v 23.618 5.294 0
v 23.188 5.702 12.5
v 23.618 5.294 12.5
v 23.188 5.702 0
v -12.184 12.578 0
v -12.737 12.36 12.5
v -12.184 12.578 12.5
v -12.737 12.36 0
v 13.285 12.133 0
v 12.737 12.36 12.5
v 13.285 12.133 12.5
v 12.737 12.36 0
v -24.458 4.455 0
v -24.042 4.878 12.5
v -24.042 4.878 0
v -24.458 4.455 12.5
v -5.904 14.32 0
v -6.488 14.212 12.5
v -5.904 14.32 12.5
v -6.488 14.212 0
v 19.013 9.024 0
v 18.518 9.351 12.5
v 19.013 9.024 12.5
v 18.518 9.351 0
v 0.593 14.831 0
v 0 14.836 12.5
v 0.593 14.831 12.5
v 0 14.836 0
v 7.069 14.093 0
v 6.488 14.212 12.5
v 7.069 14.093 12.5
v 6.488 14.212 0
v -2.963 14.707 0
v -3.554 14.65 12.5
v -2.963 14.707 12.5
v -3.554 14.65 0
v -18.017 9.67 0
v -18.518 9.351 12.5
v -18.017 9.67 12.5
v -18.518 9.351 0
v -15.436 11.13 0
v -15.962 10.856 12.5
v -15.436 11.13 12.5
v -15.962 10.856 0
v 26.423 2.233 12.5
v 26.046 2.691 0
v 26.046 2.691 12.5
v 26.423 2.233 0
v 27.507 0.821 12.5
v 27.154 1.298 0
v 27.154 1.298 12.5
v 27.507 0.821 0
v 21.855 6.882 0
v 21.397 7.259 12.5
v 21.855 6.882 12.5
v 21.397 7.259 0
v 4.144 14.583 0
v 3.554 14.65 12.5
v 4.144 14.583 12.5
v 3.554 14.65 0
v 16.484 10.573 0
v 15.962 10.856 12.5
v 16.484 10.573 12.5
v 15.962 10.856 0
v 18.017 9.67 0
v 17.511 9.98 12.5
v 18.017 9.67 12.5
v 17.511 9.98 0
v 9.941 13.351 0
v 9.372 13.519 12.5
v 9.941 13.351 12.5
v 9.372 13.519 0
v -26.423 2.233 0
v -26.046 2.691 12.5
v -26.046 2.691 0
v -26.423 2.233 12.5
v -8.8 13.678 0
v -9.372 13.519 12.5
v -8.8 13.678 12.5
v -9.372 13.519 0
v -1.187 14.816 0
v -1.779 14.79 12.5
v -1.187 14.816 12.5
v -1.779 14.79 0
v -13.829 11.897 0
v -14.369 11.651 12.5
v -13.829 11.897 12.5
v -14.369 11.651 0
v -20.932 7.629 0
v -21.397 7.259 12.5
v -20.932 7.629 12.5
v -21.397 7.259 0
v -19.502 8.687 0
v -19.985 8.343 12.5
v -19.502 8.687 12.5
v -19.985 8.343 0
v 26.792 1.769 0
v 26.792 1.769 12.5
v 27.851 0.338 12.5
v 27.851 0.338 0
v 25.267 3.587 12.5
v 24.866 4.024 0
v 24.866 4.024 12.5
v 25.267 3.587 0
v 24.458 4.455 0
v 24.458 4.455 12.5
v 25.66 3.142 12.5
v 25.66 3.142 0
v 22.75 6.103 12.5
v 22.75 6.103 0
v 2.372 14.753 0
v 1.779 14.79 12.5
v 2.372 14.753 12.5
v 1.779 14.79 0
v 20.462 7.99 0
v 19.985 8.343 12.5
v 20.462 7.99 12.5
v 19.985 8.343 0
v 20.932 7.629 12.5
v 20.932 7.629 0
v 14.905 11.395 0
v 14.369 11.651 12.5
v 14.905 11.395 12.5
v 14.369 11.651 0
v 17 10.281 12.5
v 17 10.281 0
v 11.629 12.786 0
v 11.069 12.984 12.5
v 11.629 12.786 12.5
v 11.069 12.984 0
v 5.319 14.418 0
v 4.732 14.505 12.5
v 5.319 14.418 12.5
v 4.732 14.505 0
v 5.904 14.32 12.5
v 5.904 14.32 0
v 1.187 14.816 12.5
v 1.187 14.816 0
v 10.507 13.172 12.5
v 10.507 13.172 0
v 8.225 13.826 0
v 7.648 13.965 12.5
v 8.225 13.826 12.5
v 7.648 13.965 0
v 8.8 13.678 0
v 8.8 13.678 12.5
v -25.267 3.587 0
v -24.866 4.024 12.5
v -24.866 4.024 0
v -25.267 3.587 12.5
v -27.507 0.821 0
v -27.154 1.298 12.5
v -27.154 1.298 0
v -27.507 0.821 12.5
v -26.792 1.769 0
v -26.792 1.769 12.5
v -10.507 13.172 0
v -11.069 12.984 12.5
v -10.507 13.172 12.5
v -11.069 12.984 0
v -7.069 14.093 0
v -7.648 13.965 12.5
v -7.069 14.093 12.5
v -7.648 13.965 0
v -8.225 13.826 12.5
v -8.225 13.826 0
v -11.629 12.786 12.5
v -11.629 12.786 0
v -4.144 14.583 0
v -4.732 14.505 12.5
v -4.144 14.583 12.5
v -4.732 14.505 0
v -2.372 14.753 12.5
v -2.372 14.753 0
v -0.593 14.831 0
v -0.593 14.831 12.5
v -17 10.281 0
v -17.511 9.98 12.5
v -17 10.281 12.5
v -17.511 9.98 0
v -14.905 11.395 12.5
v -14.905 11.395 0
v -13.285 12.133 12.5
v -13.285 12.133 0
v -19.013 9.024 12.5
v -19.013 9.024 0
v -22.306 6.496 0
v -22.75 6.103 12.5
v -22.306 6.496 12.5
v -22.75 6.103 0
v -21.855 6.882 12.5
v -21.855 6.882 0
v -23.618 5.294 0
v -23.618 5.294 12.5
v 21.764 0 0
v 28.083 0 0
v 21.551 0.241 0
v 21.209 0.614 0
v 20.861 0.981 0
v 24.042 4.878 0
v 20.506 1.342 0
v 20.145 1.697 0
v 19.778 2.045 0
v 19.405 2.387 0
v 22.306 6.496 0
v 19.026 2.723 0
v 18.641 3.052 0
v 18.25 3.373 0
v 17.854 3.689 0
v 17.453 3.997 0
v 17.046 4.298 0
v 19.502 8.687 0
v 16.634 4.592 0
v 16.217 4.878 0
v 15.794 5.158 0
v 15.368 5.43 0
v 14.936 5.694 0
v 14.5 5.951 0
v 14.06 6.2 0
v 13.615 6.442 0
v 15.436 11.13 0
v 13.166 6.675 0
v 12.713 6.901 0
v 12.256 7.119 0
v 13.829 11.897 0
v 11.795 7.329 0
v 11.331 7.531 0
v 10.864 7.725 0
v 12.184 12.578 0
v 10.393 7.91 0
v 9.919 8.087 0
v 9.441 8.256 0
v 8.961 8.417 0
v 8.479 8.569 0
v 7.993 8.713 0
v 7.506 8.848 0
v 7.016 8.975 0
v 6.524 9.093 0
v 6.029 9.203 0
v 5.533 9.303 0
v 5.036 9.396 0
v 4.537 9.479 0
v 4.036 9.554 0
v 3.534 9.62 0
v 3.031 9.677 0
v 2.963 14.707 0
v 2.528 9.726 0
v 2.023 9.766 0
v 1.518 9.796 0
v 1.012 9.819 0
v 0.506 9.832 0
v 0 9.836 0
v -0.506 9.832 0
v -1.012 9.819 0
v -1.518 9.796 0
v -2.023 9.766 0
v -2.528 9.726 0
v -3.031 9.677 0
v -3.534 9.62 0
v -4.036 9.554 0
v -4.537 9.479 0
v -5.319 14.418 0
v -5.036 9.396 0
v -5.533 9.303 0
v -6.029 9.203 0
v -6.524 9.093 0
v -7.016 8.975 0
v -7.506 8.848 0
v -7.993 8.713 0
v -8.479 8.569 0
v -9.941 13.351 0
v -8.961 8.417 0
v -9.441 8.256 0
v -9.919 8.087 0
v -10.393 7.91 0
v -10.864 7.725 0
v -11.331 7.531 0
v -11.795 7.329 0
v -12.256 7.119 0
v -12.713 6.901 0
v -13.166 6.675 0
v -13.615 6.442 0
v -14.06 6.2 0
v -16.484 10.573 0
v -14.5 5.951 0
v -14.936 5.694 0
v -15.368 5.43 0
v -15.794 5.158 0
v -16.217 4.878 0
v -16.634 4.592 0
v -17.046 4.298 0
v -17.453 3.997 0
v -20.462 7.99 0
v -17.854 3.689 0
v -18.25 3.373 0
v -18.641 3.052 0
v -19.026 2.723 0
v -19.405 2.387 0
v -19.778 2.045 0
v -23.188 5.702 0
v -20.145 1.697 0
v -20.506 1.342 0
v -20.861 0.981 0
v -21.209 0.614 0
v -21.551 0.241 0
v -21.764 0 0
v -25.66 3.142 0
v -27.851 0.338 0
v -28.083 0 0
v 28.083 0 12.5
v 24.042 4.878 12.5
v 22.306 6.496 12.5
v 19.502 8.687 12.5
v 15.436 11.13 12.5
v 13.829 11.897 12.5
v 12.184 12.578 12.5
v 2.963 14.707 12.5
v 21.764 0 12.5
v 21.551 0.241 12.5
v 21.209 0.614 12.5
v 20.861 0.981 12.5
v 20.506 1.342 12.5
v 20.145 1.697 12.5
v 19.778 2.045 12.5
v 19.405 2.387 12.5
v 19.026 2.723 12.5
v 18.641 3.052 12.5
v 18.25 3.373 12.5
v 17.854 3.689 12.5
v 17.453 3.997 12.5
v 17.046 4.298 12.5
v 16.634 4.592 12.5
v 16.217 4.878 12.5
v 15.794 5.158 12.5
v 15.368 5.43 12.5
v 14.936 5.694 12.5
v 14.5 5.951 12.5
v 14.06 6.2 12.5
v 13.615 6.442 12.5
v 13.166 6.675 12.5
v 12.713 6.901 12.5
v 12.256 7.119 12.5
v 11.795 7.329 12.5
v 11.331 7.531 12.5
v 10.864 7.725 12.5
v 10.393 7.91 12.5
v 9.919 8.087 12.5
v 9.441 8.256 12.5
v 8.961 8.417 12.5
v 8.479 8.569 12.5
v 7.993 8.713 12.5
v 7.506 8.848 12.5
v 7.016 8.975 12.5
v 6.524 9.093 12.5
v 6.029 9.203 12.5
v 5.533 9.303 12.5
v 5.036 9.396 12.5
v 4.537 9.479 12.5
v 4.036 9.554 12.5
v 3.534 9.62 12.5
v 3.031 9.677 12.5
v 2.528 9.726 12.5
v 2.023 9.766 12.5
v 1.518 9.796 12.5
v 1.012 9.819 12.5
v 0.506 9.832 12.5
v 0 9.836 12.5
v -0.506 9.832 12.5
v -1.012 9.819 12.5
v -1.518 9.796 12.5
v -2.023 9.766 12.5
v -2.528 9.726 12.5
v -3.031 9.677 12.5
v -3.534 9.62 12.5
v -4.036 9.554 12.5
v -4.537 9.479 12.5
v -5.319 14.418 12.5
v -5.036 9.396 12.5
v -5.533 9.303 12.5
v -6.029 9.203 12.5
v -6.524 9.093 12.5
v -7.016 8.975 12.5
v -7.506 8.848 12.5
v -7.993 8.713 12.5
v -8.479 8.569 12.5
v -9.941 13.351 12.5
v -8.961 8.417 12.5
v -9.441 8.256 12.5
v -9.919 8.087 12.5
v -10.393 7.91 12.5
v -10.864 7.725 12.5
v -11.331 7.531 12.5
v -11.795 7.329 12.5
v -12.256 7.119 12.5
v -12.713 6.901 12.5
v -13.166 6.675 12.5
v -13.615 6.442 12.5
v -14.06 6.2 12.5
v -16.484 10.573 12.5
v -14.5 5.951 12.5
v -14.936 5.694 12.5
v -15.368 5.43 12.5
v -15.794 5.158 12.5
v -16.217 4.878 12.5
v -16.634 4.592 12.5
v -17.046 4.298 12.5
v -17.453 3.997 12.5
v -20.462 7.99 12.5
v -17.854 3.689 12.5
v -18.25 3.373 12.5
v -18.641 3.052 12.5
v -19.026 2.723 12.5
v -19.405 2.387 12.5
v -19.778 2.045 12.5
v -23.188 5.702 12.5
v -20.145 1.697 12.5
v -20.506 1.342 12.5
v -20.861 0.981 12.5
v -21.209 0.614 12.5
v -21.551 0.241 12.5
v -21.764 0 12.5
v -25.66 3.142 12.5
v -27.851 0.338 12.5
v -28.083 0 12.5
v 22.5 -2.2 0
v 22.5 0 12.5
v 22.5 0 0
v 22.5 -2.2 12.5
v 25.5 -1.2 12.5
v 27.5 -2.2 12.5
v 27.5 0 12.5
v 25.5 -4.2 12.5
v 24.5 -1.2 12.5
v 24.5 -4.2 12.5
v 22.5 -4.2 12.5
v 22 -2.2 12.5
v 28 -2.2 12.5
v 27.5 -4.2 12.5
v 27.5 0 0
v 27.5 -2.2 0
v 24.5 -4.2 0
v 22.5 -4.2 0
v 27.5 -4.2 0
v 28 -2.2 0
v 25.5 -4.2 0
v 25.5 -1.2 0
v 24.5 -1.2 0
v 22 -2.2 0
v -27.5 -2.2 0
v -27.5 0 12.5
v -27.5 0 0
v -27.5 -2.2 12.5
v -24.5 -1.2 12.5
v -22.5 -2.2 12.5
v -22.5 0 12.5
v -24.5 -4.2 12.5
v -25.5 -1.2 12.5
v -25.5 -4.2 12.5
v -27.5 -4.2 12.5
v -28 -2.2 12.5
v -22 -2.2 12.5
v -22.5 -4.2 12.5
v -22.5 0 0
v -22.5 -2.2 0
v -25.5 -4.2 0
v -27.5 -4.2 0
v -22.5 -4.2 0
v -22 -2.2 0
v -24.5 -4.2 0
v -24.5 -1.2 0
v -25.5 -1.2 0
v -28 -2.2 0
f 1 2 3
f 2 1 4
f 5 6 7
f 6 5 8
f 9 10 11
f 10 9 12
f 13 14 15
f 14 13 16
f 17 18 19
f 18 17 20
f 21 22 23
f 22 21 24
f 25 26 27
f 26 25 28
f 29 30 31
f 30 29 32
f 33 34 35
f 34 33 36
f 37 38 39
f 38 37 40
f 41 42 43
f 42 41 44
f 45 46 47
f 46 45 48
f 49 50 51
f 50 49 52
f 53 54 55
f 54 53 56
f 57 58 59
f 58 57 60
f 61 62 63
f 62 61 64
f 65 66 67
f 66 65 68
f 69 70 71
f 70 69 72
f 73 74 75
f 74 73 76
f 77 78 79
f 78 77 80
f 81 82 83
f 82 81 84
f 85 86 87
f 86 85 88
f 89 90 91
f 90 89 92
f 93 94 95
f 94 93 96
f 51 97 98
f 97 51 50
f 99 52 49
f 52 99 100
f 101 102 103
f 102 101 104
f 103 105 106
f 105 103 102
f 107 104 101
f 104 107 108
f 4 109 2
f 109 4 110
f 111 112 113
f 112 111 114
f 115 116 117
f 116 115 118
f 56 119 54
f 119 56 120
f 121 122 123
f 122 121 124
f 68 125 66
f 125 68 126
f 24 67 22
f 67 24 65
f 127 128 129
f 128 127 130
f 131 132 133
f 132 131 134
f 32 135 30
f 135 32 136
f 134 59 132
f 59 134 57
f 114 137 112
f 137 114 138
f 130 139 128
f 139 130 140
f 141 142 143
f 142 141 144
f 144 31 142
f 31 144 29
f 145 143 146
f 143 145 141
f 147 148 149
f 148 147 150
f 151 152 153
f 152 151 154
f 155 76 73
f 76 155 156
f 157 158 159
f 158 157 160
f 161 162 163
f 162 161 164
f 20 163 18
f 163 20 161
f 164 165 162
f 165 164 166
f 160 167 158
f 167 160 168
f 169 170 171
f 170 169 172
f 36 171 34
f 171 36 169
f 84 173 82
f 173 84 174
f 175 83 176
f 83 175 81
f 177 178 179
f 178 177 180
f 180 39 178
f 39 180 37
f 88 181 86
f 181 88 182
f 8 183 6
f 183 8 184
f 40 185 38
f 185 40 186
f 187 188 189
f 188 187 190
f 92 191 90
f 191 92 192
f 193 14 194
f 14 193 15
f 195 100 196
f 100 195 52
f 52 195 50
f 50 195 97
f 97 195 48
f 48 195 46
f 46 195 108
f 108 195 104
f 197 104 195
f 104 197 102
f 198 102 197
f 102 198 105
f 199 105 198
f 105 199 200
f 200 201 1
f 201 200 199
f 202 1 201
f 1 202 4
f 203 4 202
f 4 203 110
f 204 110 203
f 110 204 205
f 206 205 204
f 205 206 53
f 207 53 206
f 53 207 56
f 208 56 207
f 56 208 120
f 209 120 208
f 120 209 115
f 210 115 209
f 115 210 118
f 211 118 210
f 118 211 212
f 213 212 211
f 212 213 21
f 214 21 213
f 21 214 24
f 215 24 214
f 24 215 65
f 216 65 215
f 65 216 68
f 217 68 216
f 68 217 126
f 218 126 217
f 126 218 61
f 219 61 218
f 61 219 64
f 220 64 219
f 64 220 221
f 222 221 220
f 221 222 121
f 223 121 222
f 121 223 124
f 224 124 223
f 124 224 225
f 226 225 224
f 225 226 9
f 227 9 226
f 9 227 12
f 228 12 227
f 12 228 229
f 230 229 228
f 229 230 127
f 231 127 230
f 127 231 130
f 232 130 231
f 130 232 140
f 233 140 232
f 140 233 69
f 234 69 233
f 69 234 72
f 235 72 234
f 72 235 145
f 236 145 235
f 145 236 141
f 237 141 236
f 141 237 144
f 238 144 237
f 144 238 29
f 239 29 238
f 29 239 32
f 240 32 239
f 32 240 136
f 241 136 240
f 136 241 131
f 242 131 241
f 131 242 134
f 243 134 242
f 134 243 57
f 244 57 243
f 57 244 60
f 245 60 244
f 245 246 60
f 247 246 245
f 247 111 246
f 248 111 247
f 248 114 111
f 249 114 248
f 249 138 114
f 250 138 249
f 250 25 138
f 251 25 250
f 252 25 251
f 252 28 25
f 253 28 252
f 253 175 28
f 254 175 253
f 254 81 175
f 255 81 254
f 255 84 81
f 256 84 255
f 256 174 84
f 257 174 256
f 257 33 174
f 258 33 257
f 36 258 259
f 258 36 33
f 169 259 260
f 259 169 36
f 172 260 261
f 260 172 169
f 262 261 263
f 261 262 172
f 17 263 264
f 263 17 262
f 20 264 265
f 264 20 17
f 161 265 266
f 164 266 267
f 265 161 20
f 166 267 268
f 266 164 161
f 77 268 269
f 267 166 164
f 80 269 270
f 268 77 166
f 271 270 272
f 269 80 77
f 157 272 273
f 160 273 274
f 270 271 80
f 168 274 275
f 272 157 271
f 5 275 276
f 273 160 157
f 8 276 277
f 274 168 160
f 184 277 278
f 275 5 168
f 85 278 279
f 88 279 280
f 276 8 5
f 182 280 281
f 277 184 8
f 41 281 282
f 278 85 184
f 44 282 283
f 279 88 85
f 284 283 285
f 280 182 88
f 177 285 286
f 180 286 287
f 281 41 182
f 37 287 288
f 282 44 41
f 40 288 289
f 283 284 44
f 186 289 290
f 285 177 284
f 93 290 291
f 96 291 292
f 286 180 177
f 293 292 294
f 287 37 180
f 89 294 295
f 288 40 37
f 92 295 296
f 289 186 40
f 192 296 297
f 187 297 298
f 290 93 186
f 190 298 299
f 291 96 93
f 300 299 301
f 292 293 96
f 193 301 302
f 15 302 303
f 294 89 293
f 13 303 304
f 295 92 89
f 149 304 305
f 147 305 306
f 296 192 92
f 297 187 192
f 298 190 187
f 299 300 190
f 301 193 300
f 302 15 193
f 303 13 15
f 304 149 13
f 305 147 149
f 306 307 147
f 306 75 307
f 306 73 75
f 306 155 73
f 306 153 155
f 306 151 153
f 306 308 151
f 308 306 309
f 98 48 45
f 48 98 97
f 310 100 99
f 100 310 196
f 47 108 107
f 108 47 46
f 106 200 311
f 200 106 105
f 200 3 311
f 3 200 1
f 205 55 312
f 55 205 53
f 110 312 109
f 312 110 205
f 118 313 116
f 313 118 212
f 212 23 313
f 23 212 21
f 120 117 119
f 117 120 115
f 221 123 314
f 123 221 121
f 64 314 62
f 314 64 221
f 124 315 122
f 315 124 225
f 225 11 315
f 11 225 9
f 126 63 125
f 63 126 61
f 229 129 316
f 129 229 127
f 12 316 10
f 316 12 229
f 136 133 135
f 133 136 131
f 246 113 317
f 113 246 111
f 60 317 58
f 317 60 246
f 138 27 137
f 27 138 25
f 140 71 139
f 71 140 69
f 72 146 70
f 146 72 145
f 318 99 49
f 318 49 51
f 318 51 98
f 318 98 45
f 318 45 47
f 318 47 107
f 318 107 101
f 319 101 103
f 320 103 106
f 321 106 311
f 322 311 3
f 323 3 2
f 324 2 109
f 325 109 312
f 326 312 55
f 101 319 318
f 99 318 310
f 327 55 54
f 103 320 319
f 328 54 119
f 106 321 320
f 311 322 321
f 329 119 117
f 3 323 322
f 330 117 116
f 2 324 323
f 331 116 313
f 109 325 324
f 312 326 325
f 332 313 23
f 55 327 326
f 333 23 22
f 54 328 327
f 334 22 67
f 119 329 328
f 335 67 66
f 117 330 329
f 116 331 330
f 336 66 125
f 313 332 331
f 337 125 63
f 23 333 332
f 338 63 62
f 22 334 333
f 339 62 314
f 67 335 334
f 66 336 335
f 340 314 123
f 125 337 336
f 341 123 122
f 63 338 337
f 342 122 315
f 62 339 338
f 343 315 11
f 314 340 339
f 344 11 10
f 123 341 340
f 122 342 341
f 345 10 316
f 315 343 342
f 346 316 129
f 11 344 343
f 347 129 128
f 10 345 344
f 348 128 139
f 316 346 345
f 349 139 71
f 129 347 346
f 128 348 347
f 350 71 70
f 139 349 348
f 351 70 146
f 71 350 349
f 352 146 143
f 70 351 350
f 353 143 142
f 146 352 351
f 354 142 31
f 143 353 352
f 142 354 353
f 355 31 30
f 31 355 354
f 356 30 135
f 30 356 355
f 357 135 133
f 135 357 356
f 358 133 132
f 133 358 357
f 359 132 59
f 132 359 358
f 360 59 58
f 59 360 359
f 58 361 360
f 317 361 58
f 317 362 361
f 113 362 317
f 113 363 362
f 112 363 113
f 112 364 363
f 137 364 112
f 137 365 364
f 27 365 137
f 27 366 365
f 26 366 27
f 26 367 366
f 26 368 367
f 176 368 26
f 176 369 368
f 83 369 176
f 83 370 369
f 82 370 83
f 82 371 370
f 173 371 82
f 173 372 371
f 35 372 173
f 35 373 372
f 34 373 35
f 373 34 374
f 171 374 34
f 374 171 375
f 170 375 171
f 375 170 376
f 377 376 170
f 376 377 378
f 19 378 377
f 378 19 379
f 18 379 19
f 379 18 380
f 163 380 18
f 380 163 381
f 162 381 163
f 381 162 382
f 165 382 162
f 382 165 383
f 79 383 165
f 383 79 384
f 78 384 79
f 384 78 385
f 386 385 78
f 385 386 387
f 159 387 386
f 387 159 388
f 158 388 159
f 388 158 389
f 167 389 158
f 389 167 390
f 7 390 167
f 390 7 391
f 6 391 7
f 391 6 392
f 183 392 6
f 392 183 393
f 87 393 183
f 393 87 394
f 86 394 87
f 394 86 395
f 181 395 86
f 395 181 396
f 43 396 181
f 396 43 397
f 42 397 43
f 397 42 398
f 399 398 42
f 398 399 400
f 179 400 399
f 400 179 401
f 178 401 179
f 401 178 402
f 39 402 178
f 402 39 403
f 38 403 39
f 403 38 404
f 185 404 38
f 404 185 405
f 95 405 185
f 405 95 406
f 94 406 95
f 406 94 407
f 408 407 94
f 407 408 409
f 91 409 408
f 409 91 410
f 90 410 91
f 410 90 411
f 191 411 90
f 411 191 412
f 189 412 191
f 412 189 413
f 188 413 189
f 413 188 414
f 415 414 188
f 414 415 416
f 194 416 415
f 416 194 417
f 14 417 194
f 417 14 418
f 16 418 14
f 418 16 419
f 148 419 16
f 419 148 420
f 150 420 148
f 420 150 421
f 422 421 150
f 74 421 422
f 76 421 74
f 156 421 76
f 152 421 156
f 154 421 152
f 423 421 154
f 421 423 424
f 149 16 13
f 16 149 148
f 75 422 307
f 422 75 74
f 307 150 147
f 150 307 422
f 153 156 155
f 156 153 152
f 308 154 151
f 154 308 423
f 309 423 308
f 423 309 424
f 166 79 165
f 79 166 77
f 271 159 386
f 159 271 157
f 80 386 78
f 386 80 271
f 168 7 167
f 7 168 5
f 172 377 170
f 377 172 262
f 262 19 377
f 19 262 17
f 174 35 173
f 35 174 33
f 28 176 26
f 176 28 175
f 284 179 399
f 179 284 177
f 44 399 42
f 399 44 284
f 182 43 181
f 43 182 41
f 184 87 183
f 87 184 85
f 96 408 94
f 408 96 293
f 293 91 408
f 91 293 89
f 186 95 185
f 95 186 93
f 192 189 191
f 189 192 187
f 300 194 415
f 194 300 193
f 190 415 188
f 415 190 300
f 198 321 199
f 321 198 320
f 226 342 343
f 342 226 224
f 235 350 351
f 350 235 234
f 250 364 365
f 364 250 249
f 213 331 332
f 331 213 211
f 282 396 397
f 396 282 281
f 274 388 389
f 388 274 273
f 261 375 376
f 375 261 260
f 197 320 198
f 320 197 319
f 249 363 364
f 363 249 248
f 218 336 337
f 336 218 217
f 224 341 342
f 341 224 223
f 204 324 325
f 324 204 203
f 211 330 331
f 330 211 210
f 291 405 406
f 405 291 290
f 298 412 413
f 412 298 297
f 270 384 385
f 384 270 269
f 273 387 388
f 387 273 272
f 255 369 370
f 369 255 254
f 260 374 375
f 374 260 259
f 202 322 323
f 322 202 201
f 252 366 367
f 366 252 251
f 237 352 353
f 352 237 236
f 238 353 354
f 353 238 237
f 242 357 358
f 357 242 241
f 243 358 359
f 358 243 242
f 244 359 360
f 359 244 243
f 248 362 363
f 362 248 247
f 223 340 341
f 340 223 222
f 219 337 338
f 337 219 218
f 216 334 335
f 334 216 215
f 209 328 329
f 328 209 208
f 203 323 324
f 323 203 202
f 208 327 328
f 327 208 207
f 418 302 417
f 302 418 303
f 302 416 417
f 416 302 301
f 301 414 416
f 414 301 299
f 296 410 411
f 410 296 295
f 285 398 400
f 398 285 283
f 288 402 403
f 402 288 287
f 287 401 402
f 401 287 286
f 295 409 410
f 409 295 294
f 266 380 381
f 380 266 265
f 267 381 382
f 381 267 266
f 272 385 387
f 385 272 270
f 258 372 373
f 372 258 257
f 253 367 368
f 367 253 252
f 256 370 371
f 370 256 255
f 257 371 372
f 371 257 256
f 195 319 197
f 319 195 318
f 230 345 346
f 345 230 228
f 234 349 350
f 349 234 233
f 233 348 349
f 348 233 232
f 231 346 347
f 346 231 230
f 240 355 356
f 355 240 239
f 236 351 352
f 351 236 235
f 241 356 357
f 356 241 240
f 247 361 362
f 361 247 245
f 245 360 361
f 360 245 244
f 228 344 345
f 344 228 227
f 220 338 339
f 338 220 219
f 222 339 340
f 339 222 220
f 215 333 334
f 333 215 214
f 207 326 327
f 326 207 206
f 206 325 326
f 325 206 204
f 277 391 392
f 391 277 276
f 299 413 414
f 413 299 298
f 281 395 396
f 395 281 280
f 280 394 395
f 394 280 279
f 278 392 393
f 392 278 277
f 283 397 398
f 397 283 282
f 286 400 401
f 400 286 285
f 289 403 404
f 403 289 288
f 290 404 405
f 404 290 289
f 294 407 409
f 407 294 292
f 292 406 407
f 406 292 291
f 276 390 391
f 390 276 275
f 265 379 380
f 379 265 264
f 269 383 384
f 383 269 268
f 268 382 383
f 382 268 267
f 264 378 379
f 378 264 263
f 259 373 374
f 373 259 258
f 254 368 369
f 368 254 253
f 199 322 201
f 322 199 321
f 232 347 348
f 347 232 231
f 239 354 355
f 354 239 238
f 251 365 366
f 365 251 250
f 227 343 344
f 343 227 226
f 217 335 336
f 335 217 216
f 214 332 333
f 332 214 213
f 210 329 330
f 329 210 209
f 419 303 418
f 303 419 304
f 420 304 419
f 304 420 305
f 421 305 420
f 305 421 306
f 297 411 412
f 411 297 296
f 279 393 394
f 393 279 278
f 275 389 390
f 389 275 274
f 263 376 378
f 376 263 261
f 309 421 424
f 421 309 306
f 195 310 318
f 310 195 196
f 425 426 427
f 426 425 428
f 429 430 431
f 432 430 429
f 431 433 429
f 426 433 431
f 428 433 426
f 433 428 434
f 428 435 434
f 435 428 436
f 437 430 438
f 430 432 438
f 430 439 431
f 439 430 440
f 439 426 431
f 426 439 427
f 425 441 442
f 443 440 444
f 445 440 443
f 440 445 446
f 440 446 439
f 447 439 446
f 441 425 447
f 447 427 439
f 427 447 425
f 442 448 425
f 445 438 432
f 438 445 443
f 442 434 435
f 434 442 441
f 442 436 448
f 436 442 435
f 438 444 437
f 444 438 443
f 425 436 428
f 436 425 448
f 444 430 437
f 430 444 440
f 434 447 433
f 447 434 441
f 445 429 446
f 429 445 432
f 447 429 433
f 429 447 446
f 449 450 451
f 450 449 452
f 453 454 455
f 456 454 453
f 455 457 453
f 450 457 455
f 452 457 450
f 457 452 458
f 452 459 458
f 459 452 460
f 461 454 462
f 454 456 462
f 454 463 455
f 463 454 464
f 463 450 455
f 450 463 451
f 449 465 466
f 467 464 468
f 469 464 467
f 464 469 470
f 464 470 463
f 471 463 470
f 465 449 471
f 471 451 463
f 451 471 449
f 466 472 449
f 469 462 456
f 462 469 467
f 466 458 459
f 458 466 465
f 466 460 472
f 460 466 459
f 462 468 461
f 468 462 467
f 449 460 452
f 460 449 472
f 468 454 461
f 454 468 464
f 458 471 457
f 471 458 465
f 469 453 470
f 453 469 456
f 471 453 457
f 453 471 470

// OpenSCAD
// file: gamecube-measurements.scad
gcWidth = 150 / 2;
gcHeight = 156 / 2;
gcDepth = 110 / 2;

gcCaseR = 2.4 / 2;

gcBaseDepth = 25 / 2;
gcBaseThickness = 1.5;
gcWallThickness = 3;

gcMountingPlateSlotThickness = 1;
gcMountingPlateSlotWidth = 2;
gcMountingPegDiameter = 1.8;
gcMountingPegHeight = 2;

gcFanNubThickness = 4.5 / 2;
gcFanNubArcHeight = 4.5 / 2;
gcFanNubArcRadius = 120 / 2;
gcFanGridWidth = 54 / 2;
gcFanPlateWidth = gcFanGridWidth + 6;
gcFanBeamWidth = 1.5;

gcFrontPlateArcDepth = 5.3 / 2;
gcFrontPlateArcRadius = 120 / 2;
gcFrontPlateWidth = 115 / 2;
gcFrontPlateHeight = 59 / 2;

gcFrontPlateHoleDiameter = 14.8;
gcFrontPlateHoleSpacing = 13;
gcFrontPlateHoleInsetY = 12.2;

gcMemorySlotWidth = 36;
gcMemorySlotHeight = 8.45;
gcMemorySlotDepth = 0.9;
gcMemorySlotR = 2.4;
gcMemoryInsetY = 9.2 / 2;

gcRearPlateWidth = gcWidth - 6;
gcRearPlateHeight = 94.5 / 2;
gcRearPlateInsetY = 5.6 / 2;
gcRearPlateStickout = 5 / 2;

gcHandleWidth = 10 / 2;
gcHandleHeight = 25 / 2;
gcHandleRadius = 68 / 2;
gcHandleDistance = 100 / 2;
gcHandleStickout = 35 / 2;
gcHandleInsetX = 21 / 2;// - gcHandleWidth/2;
gcHandleInsetY = 68 / 2;

gcButtonDiameter = 16.5/2;
// main file
include <gamecube-measurements.scad>

pegLipWidth = 0.5;
pegLipDepth = 2;
pegShaft = 2.2;
pegDepth = pegShaft + pegLipDepth;
pegSlotWidth = 1;
pegSlotDepth = 3;

handleInset = sqrt(pow(gcHandleRadius-(gcHandleWidth/2), 2) - pow(gcHandleDistance/2, 2));

module handlePeg() {
    translate([-gcHandleWidth/2, -pegDepth, 0]) difference() {
        union() {
            cube([gcHandleWidth, pegDepth, gcHandleHeight]);
            linear_extrude(gcHandleHeight, center=false)
                polygon(points=[
                    [0, 0],
                    [-pegLipWidth, pegLipDepth],
                    [gcHandleWidth + pegLipWidth, pegLipDepth],
                    [gcHandleWidth, 0]
                ]);
        }
        translate([(gcHandleWidth-pegSlotWidth)/2, -0.1, -0.1])
            cube([pegSlotWidth, pegSlotDepth+0.1, gcHandleHeight + 0.2]);
    }
}

module handle() {
    $fn=360;
    translate([0, -handleInset, 0]) difference() {
        cylinder(r = gcHandleRadius, h = gcHandleHeight);
        translate([0, 0, -0.1])
            cylinder(r = gcHandleRadius - gcHandleWidth, h = gcHandleHeight + 0.2);
        translate([-gcHandleRadius-0.1, -gcHandleRadius-0.1, -0.1])
            cube([gcHandleRadius*2+0.2, gcHandleRadius+handleInset+0.1, gcHandleHeight + 0.2]);
    }
    translate([gcHandleDistance/2, 0, 0]) handlePeg();
    translate([-gcHandleDistance/2, 0, 0]) handlePeg();
}

color("#rrggbb") handle();
